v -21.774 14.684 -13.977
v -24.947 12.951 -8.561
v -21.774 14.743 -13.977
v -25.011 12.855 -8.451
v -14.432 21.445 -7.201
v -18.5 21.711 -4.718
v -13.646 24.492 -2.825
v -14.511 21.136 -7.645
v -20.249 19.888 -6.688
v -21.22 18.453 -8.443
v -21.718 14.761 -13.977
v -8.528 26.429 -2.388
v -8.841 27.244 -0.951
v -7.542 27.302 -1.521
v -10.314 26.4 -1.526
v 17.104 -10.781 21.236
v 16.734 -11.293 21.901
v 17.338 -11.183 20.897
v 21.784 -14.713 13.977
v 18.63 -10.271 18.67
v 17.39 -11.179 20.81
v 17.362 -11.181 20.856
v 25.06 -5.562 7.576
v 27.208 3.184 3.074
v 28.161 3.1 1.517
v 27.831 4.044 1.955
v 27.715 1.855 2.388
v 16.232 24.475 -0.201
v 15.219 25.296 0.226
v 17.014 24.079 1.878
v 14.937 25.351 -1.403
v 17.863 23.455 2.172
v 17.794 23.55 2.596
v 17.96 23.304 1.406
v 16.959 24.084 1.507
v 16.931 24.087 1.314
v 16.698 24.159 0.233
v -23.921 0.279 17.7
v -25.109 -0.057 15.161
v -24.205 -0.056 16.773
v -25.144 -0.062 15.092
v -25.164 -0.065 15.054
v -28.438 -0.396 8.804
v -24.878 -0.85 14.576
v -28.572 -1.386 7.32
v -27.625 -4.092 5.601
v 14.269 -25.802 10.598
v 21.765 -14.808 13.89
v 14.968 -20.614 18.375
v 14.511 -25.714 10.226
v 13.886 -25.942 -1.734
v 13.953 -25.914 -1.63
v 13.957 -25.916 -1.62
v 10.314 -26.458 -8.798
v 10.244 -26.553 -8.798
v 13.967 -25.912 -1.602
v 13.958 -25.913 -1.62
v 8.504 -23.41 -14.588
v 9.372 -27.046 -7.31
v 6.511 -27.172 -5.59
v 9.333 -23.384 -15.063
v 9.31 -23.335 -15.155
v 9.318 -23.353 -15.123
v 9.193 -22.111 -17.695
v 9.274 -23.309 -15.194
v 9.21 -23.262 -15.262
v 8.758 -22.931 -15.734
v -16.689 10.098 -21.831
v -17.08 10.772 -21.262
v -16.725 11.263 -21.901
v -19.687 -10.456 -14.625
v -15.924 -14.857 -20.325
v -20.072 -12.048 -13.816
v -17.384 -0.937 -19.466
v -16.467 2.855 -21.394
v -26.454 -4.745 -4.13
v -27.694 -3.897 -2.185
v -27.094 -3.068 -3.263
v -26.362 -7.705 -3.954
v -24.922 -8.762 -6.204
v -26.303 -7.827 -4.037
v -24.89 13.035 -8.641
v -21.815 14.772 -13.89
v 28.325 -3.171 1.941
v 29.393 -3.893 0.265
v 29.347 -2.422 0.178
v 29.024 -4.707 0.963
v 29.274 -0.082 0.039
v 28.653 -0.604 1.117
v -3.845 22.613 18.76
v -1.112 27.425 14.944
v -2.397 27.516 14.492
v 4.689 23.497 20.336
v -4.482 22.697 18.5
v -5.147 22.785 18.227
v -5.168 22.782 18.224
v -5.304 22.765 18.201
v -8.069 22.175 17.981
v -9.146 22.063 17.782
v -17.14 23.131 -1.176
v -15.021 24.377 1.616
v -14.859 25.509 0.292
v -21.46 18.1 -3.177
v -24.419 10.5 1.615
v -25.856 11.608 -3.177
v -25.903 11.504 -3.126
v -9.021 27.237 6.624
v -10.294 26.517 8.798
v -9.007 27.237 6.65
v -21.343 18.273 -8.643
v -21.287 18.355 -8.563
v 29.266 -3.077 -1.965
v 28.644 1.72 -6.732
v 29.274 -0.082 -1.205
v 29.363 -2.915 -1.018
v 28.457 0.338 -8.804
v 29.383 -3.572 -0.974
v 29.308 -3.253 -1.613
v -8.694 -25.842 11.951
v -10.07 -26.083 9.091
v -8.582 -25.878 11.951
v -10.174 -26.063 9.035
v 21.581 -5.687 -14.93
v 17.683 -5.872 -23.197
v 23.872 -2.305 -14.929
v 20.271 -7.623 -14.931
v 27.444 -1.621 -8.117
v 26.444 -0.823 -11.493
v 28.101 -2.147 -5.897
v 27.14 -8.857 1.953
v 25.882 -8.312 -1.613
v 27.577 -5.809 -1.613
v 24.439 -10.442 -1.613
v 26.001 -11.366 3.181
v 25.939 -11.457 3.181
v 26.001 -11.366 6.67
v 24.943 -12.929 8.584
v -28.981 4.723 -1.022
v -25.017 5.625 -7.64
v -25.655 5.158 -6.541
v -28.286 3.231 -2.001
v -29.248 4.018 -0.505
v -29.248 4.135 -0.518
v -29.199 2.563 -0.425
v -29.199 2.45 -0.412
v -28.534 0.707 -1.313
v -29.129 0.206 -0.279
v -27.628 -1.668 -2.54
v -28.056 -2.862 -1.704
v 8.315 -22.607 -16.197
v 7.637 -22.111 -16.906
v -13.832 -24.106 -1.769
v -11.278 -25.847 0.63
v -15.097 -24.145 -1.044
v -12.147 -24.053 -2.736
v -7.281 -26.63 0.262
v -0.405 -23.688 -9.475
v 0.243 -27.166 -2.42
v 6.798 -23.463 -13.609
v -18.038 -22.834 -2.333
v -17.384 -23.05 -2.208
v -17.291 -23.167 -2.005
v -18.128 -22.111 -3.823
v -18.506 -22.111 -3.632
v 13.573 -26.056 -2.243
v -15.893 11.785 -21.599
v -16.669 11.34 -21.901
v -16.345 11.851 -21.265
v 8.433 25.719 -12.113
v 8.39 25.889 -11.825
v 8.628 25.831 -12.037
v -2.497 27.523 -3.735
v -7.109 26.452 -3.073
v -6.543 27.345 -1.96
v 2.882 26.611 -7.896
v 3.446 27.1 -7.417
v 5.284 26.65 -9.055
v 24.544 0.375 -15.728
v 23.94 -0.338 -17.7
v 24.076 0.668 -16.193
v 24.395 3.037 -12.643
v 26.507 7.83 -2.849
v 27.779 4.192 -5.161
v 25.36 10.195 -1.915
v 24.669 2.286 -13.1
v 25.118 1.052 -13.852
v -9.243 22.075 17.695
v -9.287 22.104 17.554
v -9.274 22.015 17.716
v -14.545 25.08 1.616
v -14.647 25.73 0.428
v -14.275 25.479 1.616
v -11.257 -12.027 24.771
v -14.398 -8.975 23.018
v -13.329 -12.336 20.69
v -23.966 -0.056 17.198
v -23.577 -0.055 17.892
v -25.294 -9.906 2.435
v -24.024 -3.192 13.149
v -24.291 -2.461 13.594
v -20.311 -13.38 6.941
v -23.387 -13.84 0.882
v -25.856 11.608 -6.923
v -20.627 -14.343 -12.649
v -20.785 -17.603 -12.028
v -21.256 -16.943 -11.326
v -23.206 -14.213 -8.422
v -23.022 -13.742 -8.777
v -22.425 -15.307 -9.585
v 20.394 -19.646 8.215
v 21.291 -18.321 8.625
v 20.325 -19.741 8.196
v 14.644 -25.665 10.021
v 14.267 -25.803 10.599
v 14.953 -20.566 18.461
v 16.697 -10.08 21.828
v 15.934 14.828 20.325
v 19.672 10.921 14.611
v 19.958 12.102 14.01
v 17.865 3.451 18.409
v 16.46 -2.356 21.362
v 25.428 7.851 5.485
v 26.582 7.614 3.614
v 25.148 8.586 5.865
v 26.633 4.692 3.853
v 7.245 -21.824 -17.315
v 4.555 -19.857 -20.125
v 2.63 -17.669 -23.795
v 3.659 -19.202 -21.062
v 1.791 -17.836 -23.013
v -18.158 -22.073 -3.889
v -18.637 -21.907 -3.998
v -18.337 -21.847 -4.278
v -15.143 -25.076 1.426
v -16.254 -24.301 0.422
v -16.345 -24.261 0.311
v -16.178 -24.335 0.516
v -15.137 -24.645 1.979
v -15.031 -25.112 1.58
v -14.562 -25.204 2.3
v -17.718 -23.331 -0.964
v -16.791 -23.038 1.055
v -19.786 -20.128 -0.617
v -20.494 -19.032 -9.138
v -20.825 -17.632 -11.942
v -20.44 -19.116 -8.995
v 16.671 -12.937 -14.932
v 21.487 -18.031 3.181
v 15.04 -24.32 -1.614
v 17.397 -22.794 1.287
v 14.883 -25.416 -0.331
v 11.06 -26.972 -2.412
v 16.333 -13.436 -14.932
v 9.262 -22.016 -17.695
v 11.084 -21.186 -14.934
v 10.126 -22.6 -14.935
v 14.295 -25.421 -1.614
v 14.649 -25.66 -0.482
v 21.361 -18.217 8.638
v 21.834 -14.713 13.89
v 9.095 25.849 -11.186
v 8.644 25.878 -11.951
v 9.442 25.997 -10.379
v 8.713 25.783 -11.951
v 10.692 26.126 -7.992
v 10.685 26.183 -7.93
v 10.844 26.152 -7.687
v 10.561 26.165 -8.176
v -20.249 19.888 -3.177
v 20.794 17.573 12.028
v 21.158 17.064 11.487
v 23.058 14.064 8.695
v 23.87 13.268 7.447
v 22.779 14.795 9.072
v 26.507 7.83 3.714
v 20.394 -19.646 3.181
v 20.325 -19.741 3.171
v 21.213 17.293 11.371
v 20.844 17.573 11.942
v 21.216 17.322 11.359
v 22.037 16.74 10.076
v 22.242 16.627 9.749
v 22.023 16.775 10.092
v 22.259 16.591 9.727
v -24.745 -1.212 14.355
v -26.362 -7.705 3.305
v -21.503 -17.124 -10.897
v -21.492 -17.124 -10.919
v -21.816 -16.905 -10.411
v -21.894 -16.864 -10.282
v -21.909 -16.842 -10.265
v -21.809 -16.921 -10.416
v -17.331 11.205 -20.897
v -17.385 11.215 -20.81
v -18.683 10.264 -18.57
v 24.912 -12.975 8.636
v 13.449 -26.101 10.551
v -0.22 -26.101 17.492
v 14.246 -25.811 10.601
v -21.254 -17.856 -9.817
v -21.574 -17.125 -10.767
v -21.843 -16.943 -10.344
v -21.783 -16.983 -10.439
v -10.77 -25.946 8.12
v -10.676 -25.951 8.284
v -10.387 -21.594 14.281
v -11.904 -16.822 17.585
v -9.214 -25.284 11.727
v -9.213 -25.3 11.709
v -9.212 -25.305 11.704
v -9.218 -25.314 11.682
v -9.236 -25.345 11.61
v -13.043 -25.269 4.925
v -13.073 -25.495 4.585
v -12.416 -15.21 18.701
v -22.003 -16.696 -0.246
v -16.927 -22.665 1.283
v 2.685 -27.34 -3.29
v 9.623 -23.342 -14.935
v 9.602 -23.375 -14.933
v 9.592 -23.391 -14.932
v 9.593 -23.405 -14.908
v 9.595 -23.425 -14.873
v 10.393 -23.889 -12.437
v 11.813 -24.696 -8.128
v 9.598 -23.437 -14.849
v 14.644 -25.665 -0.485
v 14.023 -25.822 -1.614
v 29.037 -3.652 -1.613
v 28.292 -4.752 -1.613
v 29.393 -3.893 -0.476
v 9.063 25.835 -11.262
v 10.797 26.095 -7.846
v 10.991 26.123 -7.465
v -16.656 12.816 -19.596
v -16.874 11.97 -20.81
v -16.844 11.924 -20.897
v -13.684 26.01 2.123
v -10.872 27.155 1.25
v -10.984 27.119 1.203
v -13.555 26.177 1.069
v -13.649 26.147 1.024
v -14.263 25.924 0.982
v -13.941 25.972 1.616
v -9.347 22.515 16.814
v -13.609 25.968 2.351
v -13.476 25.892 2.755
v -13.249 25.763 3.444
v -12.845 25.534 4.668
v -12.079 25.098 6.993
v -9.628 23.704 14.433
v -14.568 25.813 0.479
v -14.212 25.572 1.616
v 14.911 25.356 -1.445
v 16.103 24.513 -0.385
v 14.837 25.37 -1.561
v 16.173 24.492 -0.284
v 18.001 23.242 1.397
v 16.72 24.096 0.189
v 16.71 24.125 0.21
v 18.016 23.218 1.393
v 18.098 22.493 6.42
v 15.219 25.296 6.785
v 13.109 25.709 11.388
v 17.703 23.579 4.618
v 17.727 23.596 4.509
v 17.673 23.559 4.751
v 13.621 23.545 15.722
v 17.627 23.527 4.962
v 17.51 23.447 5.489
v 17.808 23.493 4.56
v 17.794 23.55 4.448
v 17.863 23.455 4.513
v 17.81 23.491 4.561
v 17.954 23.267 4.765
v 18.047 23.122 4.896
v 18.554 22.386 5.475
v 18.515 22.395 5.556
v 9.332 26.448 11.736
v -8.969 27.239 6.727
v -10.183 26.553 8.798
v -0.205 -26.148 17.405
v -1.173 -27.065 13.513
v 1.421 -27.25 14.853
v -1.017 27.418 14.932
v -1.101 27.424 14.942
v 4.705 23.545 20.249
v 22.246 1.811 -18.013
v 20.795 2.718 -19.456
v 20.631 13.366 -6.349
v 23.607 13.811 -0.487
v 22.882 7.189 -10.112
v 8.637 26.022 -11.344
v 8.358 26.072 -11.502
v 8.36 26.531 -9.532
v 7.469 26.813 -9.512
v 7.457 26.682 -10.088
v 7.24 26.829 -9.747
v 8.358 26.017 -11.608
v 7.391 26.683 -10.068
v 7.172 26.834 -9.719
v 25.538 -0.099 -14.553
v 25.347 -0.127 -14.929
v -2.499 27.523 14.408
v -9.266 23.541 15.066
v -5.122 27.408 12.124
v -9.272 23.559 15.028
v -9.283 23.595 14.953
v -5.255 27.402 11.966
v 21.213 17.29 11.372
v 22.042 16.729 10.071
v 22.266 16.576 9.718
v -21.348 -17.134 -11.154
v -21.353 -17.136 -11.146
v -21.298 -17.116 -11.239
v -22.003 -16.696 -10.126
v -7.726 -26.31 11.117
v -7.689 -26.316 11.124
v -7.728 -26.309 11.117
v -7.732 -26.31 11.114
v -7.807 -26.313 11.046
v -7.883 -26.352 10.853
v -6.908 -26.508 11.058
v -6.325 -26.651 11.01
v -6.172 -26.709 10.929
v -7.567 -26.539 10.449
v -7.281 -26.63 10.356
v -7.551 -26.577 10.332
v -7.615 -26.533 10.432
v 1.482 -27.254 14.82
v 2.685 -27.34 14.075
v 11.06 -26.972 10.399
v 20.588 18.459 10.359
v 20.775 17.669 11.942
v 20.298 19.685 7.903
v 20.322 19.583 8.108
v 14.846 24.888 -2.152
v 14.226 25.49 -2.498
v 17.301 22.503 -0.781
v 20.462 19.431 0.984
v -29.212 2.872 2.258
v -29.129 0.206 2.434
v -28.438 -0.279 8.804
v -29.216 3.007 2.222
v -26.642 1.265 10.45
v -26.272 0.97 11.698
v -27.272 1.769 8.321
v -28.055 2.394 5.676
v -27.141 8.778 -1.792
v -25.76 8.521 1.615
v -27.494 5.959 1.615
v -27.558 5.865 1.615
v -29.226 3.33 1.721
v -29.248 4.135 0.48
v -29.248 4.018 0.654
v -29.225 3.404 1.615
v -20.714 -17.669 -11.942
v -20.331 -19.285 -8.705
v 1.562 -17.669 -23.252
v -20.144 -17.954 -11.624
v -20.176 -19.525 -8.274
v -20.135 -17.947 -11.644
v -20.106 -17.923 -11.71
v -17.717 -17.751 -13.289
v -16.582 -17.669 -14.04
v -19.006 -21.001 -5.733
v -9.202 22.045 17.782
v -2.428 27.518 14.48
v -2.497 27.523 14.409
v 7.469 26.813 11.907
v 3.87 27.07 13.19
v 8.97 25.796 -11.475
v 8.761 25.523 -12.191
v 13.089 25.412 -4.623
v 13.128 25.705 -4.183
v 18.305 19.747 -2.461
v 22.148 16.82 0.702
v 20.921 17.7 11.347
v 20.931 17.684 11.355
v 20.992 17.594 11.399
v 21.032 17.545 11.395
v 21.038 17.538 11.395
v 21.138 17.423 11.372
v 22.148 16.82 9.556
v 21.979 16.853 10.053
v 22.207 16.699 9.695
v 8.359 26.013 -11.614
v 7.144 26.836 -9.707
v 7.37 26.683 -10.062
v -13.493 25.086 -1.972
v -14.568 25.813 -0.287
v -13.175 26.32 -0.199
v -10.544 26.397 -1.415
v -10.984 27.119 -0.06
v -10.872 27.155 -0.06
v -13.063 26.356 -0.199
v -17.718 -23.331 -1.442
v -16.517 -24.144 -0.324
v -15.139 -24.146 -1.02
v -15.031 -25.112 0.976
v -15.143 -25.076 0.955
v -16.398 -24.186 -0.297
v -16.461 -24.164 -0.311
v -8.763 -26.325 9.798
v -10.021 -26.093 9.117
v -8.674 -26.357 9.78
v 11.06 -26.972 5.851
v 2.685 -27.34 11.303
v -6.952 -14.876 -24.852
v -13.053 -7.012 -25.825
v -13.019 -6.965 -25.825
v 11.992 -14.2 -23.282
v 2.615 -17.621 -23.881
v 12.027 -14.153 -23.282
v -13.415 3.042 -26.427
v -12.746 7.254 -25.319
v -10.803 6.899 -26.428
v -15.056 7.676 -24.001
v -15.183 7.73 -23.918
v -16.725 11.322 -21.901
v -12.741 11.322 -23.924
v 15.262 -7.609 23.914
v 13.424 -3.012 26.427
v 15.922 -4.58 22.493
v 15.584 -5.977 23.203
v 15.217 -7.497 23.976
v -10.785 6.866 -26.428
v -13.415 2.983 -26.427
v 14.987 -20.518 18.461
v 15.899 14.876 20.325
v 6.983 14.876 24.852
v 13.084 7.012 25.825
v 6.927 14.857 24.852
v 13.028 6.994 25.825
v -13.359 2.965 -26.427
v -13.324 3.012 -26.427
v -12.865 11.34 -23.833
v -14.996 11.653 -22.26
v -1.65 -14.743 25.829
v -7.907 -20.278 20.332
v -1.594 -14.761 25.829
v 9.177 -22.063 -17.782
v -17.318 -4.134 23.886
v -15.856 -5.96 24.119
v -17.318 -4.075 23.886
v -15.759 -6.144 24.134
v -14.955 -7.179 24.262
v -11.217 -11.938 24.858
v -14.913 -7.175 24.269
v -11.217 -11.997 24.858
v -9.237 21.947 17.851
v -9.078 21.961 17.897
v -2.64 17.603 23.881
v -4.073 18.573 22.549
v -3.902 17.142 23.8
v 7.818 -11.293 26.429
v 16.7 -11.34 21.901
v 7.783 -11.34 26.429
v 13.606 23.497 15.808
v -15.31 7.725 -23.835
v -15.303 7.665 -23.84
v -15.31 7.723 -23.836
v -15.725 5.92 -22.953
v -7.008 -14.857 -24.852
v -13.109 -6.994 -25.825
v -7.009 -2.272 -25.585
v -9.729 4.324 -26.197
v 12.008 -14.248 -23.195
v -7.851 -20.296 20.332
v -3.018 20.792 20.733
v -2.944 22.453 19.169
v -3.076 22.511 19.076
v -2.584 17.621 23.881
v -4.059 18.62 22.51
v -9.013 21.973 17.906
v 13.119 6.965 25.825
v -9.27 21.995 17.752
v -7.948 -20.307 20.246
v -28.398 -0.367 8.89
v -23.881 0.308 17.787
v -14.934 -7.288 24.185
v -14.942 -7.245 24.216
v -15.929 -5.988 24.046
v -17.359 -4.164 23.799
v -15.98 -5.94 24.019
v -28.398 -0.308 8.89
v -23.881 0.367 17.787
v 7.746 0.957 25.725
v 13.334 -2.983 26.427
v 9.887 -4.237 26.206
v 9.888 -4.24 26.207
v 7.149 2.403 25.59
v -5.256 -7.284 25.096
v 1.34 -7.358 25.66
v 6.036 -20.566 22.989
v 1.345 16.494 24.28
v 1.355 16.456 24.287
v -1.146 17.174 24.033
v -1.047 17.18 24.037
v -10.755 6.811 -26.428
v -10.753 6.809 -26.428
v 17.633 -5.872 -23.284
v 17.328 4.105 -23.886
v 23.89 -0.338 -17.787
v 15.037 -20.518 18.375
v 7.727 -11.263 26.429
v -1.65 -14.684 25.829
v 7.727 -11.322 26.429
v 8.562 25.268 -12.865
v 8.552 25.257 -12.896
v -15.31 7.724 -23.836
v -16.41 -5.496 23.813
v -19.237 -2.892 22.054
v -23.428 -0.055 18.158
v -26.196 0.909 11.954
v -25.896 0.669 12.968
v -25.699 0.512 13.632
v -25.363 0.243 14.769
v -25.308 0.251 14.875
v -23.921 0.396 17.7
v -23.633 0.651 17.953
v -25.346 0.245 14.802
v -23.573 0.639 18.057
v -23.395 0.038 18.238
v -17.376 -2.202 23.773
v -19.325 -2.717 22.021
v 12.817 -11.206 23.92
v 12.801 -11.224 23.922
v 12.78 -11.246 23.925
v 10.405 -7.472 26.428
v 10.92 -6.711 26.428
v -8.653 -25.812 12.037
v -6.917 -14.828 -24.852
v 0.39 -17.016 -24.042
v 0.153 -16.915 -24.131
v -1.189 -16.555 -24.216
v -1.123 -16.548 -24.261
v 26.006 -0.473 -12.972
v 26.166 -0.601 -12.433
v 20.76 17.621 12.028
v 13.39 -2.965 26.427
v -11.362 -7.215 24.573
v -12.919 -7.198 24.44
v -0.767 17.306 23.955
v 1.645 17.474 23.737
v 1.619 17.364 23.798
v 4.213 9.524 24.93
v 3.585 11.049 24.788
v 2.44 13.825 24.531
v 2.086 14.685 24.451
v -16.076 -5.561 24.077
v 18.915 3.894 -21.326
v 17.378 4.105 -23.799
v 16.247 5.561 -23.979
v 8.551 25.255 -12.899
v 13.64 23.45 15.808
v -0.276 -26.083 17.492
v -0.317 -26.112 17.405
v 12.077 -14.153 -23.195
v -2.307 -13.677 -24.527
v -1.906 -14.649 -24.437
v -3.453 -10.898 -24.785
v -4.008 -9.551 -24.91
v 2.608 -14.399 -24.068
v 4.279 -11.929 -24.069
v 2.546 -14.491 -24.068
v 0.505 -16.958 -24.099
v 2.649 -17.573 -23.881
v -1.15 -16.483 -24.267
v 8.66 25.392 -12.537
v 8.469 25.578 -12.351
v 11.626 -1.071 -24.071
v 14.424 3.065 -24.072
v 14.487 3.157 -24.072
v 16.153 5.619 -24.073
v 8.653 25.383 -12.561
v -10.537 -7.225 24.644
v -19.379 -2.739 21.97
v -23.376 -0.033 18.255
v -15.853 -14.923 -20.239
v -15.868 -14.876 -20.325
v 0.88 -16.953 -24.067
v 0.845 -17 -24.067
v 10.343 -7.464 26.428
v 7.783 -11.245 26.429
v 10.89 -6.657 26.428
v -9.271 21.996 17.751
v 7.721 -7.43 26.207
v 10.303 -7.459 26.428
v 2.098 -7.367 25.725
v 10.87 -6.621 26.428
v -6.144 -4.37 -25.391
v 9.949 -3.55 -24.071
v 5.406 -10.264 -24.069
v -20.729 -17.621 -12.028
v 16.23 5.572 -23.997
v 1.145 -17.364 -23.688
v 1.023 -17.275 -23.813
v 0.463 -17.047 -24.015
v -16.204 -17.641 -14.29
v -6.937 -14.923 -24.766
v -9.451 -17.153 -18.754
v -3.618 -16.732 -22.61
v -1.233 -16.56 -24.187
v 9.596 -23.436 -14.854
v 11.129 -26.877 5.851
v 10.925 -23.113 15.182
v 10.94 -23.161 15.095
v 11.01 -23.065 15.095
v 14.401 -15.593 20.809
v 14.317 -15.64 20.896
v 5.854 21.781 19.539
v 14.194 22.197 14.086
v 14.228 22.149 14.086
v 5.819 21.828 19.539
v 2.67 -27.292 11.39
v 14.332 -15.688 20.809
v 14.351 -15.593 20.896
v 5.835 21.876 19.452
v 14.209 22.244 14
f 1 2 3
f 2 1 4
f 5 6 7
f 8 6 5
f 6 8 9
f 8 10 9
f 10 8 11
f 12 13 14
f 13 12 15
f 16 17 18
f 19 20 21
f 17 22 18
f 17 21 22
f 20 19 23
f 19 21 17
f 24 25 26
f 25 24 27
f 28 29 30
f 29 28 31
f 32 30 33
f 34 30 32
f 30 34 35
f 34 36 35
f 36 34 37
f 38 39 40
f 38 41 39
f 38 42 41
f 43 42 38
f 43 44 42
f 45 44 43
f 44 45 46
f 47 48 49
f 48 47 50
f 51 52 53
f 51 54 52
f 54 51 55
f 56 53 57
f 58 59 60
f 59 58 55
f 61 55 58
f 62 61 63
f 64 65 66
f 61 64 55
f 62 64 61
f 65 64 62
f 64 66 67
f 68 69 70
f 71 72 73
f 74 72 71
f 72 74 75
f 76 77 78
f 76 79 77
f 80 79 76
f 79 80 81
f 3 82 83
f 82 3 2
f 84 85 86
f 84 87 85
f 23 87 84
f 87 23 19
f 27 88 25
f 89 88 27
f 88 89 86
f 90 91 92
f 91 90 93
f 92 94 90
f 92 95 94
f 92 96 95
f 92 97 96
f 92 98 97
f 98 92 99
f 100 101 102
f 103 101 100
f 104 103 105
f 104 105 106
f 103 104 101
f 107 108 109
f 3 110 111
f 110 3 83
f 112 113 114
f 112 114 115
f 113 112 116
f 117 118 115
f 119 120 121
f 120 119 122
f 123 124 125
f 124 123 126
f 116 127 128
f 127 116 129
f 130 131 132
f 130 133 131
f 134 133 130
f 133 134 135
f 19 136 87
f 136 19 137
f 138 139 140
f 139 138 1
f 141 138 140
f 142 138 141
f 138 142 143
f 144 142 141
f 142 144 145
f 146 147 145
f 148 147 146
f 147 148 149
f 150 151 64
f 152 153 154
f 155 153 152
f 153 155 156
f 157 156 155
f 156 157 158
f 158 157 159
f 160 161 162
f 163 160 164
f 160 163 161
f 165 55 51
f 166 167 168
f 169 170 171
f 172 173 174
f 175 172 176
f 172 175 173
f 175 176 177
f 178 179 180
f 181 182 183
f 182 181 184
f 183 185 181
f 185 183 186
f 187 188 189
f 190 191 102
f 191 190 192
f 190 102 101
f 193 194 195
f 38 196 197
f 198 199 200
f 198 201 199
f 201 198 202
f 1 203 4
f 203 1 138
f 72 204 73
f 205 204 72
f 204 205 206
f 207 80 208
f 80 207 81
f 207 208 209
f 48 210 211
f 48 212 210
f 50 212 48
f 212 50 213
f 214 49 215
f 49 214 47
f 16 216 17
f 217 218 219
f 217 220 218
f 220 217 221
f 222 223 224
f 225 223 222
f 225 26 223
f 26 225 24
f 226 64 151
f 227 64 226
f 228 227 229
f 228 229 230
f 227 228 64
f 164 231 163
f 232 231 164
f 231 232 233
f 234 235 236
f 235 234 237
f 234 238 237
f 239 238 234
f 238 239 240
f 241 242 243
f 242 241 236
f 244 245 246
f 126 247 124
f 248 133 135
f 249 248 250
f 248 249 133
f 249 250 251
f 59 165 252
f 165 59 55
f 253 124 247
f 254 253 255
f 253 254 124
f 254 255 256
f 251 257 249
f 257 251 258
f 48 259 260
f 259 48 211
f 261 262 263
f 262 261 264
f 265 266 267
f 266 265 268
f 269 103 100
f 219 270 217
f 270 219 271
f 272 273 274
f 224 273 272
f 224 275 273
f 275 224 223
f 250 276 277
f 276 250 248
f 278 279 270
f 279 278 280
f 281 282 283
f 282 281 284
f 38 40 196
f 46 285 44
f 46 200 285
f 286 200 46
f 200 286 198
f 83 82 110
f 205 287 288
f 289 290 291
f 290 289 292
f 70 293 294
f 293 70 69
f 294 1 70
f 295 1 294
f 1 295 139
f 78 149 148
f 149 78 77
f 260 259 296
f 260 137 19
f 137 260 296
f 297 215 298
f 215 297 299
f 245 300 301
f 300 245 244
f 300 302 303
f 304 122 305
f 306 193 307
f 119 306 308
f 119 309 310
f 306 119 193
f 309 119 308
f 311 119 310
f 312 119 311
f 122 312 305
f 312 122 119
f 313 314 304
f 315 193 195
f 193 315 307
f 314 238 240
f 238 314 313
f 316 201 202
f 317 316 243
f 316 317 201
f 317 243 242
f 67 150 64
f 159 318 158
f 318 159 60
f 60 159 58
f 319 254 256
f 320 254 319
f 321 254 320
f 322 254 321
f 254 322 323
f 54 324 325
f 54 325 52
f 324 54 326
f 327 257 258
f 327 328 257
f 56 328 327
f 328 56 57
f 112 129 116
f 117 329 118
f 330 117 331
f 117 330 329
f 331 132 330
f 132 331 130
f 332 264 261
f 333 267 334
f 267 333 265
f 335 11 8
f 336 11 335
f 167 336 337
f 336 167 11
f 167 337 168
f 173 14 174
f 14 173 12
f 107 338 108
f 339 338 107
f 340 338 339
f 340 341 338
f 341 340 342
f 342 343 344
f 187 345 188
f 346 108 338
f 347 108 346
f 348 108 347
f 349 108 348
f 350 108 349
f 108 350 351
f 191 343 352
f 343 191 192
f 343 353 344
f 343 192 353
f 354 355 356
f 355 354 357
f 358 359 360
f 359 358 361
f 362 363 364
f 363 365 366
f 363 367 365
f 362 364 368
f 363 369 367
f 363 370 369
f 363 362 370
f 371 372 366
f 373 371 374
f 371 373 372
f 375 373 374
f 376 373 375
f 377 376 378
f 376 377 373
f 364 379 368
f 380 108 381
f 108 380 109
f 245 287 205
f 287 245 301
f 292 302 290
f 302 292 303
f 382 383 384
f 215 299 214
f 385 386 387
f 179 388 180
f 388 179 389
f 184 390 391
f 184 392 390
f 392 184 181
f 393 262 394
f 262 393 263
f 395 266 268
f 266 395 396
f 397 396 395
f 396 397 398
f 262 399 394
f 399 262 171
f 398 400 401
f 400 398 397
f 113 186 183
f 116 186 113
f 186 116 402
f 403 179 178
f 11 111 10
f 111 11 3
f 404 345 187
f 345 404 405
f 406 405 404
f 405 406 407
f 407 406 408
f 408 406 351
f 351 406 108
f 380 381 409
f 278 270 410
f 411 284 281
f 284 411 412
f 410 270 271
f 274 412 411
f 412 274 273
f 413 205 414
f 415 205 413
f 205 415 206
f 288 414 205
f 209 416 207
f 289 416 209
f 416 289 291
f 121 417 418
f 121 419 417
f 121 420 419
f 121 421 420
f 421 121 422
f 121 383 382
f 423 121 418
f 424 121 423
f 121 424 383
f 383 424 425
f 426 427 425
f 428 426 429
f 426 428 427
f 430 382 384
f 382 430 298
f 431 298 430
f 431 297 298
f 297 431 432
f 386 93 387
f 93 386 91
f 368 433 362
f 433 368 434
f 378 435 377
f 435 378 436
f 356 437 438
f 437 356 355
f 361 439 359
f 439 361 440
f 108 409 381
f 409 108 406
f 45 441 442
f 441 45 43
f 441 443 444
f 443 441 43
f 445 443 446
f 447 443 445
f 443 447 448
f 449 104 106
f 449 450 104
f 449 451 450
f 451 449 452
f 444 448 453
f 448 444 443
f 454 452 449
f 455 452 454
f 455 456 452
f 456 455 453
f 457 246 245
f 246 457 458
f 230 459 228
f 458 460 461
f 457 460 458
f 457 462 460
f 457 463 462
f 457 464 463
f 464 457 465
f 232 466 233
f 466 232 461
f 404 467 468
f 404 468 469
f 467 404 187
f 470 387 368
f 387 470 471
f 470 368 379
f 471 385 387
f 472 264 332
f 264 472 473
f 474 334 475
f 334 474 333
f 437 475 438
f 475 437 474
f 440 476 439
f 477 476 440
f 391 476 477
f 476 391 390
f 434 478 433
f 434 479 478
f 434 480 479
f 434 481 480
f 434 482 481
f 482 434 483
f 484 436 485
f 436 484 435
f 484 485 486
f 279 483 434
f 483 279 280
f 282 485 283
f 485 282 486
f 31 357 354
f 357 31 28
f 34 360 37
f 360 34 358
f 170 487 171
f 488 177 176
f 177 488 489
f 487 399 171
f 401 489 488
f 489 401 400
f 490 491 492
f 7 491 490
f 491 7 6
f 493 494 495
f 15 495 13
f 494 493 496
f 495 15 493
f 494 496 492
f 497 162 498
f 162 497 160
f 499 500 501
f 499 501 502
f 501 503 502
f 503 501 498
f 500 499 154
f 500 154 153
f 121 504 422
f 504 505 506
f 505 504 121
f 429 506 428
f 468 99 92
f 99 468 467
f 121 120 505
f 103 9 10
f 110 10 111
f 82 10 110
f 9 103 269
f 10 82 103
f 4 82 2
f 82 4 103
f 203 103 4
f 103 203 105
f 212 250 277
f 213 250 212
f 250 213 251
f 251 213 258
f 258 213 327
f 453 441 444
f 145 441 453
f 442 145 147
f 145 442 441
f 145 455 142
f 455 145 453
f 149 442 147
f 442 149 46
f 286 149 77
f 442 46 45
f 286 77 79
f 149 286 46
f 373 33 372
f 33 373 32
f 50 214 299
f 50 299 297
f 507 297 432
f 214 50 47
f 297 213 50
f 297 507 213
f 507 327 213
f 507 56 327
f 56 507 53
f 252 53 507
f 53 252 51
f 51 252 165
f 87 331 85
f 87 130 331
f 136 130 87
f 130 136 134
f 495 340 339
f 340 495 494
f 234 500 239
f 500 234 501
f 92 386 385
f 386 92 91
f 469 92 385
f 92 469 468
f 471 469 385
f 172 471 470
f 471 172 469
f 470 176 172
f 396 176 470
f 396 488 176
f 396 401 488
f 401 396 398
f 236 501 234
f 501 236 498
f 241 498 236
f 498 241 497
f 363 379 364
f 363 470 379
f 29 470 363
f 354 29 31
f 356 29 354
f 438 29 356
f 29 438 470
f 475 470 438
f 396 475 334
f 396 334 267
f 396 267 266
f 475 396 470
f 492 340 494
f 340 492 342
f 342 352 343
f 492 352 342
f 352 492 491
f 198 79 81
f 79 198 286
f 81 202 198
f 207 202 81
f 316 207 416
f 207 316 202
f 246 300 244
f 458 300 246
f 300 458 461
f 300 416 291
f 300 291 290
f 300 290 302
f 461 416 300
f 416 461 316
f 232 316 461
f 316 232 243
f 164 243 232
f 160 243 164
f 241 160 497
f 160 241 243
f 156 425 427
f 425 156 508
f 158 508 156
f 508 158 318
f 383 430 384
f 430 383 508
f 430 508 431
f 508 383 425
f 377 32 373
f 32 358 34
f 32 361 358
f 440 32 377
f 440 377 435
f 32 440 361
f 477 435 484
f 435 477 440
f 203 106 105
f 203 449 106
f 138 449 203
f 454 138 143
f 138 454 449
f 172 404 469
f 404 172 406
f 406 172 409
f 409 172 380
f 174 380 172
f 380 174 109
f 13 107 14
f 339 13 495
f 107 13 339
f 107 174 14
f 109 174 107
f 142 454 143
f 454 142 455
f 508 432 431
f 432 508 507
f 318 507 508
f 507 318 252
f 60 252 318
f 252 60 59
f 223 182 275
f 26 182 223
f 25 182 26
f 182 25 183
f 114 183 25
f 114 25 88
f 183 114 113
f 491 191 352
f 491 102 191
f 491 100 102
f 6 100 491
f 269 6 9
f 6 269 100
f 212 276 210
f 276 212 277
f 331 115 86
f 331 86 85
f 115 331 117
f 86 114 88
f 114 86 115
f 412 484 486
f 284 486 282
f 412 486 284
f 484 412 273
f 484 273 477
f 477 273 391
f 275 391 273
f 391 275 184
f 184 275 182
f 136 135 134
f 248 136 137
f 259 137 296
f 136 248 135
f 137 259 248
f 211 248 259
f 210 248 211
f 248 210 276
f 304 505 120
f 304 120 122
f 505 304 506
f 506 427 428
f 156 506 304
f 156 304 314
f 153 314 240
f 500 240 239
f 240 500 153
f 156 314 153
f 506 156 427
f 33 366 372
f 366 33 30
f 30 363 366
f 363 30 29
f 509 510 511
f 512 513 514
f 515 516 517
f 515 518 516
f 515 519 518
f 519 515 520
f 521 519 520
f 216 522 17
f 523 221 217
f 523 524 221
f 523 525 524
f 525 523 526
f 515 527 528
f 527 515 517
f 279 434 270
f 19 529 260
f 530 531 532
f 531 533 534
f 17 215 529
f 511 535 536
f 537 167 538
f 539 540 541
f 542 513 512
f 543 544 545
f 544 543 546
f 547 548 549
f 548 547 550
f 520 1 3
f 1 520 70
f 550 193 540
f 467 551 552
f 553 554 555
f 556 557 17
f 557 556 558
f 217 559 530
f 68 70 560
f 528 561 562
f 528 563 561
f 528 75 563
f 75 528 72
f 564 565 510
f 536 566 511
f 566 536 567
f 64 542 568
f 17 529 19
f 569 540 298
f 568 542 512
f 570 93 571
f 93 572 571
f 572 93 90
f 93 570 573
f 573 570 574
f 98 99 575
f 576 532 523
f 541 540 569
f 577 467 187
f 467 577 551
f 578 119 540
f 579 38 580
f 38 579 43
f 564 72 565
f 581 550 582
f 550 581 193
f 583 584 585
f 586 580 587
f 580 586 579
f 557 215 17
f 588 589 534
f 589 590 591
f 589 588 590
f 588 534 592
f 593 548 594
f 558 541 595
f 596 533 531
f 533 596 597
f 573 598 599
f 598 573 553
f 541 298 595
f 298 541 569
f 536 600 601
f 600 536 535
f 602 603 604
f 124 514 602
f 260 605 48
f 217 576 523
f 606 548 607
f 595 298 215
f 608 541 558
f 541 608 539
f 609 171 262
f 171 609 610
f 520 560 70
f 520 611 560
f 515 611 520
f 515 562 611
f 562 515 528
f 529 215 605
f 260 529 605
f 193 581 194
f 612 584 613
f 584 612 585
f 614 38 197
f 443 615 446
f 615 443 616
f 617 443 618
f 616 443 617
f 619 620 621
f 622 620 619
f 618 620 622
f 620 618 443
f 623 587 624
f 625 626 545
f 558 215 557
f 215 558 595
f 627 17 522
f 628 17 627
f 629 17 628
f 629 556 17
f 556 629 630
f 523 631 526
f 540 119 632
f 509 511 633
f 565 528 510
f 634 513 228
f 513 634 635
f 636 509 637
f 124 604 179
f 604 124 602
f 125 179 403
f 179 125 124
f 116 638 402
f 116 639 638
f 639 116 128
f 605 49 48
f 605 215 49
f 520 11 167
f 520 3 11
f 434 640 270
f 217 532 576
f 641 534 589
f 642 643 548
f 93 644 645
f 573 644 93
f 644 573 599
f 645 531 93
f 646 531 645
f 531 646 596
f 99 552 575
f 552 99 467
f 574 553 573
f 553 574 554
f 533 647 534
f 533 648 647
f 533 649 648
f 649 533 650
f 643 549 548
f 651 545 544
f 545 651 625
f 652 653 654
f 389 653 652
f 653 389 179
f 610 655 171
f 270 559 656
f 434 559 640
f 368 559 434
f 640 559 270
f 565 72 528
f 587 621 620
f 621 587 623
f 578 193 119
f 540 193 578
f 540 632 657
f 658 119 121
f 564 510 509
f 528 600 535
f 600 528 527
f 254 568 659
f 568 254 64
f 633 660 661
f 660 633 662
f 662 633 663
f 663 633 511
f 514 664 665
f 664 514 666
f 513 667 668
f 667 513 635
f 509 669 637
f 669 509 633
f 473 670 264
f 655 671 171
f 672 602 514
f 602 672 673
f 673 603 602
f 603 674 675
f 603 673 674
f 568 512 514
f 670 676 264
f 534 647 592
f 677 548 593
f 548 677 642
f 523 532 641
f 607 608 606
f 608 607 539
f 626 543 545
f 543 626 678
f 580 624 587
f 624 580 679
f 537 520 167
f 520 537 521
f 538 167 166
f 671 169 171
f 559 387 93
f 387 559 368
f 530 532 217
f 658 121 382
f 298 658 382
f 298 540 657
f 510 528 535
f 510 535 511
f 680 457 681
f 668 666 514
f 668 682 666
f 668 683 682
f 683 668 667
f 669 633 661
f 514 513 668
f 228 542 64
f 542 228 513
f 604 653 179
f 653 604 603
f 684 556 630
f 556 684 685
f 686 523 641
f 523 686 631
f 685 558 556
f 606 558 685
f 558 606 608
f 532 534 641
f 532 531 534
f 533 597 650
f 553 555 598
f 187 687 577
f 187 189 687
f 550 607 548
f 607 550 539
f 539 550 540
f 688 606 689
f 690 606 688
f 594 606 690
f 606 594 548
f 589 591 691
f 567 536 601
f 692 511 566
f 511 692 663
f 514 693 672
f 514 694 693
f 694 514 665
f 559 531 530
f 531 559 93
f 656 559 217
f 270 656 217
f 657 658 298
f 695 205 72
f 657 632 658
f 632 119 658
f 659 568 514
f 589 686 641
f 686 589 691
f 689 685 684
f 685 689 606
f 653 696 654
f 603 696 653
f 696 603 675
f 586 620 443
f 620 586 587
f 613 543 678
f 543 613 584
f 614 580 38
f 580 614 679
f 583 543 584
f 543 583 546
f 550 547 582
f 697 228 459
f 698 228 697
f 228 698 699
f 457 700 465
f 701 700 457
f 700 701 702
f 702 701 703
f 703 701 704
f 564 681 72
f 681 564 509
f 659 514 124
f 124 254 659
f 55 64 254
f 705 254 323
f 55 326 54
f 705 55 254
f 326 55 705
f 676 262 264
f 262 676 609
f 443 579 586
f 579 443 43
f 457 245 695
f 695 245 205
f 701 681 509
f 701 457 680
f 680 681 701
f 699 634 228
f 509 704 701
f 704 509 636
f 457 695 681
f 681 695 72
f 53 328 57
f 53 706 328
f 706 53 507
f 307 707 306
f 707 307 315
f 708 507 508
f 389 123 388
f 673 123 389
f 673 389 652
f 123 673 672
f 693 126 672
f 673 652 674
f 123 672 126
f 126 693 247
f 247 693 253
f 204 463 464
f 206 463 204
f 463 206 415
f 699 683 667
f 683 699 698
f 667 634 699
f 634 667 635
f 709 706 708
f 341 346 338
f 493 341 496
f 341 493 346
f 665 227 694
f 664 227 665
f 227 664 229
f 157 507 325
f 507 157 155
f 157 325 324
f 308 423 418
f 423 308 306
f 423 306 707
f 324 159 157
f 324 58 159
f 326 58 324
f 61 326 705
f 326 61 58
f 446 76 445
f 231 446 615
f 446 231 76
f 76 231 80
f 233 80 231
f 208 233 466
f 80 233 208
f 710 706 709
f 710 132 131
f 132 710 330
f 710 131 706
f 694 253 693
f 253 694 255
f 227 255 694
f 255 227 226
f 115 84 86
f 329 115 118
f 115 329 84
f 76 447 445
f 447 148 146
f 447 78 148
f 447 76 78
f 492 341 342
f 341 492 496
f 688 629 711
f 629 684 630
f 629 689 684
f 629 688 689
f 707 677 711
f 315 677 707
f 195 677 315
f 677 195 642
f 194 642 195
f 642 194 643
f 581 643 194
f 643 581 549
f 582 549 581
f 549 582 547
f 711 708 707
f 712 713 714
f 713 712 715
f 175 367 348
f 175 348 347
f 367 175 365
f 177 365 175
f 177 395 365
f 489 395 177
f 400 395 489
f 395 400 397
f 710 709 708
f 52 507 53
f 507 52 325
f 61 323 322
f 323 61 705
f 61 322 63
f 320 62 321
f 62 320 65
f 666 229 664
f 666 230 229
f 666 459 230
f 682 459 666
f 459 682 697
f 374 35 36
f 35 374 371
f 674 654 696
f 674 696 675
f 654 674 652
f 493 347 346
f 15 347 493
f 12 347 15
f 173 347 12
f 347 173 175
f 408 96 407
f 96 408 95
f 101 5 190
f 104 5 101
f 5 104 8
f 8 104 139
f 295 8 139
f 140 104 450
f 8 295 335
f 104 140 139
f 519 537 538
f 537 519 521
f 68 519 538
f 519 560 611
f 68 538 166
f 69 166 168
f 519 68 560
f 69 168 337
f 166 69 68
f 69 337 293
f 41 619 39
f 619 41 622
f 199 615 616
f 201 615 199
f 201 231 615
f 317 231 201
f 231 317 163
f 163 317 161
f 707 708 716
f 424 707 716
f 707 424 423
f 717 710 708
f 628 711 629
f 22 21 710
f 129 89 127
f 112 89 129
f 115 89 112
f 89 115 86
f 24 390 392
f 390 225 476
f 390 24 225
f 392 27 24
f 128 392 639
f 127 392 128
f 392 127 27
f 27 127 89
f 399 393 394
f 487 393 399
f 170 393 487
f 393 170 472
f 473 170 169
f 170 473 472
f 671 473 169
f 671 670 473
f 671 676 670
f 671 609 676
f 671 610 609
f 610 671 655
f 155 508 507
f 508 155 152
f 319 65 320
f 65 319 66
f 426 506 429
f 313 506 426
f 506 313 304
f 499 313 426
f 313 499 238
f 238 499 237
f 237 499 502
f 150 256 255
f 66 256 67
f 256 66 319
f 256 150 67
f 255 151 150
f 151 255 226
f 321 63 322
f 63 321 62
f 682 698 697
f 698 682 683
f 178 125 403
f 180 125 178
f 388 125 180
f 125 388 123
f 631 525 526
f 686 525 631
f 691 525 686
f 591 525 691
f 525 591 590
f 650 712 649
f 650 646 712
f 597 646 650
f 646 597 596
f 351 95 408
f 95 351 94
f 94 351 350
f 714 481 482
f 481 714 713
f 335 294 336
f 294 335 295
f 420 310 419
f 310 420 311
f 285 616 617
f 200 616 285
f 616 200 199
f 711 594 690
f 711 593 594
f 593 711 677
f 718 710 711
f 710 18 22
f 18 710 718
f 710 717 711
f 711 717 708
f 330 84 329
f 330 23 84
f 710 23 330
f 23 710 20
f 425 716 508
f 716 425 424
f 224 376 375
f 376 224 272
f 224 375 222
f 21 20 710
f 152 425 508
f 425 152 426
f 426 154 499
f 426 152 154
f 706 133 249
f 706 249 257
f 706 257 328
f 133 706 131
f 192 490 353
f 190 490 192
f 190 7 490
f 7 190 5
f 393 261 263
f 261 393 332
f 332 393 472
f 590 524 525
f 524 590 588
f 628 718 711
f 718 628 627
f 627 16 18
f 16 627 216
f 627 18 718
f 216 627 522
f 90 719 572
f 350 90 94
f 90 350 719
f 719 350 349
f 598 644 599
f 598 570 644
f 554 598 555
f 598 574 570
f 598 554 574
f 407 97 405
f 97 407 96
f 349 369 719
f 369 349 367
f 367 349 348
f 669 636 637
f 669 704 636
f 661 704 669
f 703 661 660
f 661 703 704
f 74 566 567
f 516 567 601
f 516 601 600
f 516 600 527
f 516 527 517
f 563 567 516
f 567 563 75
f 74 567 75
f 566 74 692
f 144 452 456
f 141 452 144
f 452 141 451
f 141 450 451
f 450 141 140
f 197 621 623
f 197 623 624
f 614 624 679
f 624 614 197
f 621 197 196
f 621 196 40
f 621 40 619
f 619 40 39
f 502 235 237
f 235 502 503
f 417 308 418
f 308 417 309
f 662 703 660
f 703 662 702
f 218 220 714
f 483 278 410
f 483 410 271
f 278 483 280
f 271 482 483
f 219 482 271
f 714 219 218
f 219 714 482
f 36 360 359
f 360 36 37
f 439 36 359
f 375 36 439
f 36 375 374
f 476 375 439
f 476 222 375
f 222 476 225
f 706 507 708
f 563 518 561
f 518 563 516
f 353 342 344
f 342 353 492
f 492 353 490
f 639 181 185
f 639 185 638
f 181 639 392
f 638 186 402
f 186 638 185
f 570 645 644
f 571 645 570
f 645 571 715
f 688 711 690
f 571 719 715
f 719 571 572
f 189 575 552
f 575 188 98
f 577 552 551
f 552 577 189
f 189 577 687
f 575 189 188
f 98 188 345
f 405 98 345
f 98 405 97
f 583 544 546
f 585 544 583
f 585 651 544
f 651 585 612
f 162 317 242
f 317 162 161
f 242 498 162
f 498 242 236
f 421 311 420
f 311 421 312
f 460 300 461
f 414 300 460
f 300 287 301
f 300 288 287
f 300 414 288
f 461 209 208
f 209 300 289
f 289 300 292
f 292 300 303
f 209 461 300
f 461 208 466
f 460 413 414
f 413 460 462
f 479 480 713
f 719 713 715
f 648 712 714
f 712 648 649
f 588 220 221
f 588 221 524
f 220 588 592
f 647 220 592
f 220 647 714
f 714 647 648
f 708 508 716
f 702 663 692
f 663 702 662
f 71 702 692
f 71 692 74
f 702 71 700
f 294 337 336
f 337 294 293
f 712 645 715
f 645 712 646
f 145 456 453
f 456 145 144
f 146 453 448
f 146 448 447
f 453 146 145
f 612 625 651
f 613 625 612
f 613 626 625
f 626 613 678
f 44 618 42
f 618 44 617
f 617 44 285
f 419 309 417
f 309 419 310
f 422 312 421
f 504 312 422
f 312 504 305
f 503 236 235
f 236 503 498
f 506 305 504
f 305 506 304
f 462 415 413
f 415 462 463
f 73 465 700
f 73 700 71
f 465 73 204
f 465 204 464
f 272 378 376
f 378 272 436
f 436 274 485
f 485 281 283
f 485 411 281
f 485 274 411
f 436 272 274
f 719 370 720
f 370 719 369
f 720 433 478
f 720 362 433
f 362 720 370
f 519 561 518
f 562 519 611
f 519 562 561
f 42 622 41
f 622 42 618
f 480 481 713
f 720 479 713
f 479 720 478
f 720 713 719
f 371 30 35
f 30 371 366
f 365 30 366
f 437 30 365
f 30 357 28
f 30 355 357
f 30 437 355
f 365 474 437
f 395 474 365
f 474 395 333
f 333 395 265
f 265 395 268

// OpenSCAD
// Auto-generated OpenSCAD file

    inner_points = 10*[[-1.4487143990499982, 2.5753825704945696, 0.3393075595010162], [1.102866452168368, -2.6876538321967396, 0.585057055716785], [-1.090261602560301, 2.7060028247507986, -0.585057055716785], [1.4613192486580653, -2.5570335779405107, -0.3393075595010162], [-2.628060976189026, -0.7646488526687646, -1.130908640848898], [-2.192198931774896, -1.6636828006652273, -1.0889296152643466], [2.2048037813829633, 1.6820317932192868, 1.0889296152643466], [2.640665825797093, 0.782997845222824, 1.130908640848898], [-1.4556831147710878, -0.5821291224034855, 2.5160655338088227], [0.6427361059669467, 0.18253516486993837, -2.8952591776693413], [-0.6301312563588797, -0.16418617231587906, 2.8952591776693413], [1.4682879643791549, 0.6004781149575449, -2.5160655338088227], [-2.0167959533705173, 1.9829203214969908, 0.9105096525937446], [0.26540733999390004, -2.724482544292499, 1.1303146841836589], [-1.078354348798041, 2.3248885867589517, -1.5095083280441774], [1.2038489445663763, -2.3825142790305383, -1.2897032964542632], [-1.1912440949583092, 2.4008632715845972, 1.2897032964542632], [1.090959198406108, -2.3065395942048927, 1.5095083280441774], [-0.25280249038583286, 2.742831536846558, -1.1303146841836589], [2.0294008029785844, -1.9645713289429314, -0.9105096525937446], [-2.904797621580721, 0.026526236908532792, -0.5855107982333385], [-1.7636959748985122, -2.327175195986212, -0.47560828243838127], [-2.5463448250910243, 0.15714649116476193, -1.5098754134511396], [-1.4052431784088153, -2.1965549417299832, -1.3999728976561825], [1.4178480280168824, 2.214903934284042, 1.3999728976561825], [2.5589496746990914, -0.13879749861070262, 1.5098754134511396], [1.7763008245065792, 2.345524188540271, 0.47560828243838127], [2.917402471188788, -0.008177244354473472, 0.5855107982333385], [-2.230731614374909, -0.43037121933057704, 1.902657543873266], [-1.7948695699607788, -1.3294051673270397, 1.9446365694578178], [-0.353848405229956, 0.2535653111933443, -2.937378417402578], [0.08201363918417413, -0.6454686368031184, -2.8953993918180263], [-0.06940878957610698, 0.6638176293571778, 2.8953993918180263], [0.36645325483802316, -0.23521631863928497, 2.937378417402578], [1.807474419568846, 1.3477541598810991, -1.9446365694578178], [2.2433364639829763, 0.44872021188463634, -1.902657543873266], [-2.5775184201532904, 1.1549165198239344, 0.910369438445059], [-0.7311771712030029, -2.653452397969093, 1.088195444450422], [-1.4175408039877317, 1.5776125418353975, -2.0809372923951823], [0.4288004449625556, -2.23075637595763, -1.9031112863898194], [-0.4161955953544884, 2.249105368511689, 1.9031112863898194], [1.4301456535957988, -1.559263549281338, 2.0809372923951823], [0.7437820208110699, 2.671801390523152, -1.088195444450422], [2.5901232697613574, -1.136567527269875, -0.910369438445059], [-2.916704875342981, 0.4076404749003801, 0.33894047409405403], [-1.506225670806824, -2.5016944948961846, 0.4747874545148656], [-1.9782632707705046, 0.7496087401623407, -2.081077506543868], [-0.5677840662343473, -2.159726229634224, -1.9452305261230565], [0.5803889158424144, 2.178075222188283, 1.9452305261230565], [1.9908681203785716, -0.7312597476082813, 2.081077506543868], [1.518830520414891, 2.5200434874502435, -0.4747874545148656], [2.929309724951048, -0.38929148234632077, -0.33894047409405403], [-2.659234571251292, 0.23312117599040766, 1.289336211047301], [-1.5181329245690836, -2.1205802569043377, 1.3992387268422581], [-1.140804158596037, 0.7864374522581001, -2.6263351350107422], [0.0002974880861718451, -1.5672639806366448, -2.516432619215785], [0.012307361521895308, 1.5856129731907043, 2.516432619215785], [1.153409008204104, -0.7680884597040407, 2.6263351350107422], [1.5307377741771506, 2.1389292494583967, -1.3992387268422581], [2.671839420859359, -0.21477218343634835, -1.289336211047301], [-2.2241986003144585, 0.5422344662013506, 2.1350268624122144], [-0.28608434351159595, 1.2484835999237276, -2.8629094259414605], [-0.8884276339278647, 1.218480364801499, 2.748575066496456], [1.0496866228749977, 1.9247294985238759, -2.2493612218572188], [-2.1424824492164563, 1.4640298100348774, 1.7560600898099725], [-0.5628209889032914, 2.039658689501025, -2.317511583325901], [-1.3169305908042483, 1.8819727601224838, 2.135253733670491], [0.26273086950891694, 2.4576016395886318, -1.9383179394653824], [-1.4491501007106375, 0.39047656312844187, 2.7484348523477706], [0.7105001676853069, 1.1774534536003218, -2.820790186208224]];

    outer_points = 10*[[1.306878914065968, 0.6964890807624852, 2.5738294275574076], [-1.3374470976514352, 0.3012289421252946, -2.6340318607074473], [1.3374470976514352, -0.3012289421252946, 2.6340318607074473], [-1.306878914065968, -0.6964890807624852, -2.5738294275574076], [2.8357387496386, 0.03375924615901473, -0.8803825957553844], [2.3840339404359963, -0.03375924615901473, -1.76999150900791], [-2.3840339404359963, 0.03375924615901473, 1.76999150900791], [-2.8357387496386, -0.03375924615901473, 0.8803825957553844], [0.3563471799807295, 2.92037151977505, -0.40258456455588854], [0.5352964436130941, -2.92037151977505, -0.05015338227922686], [-0.5352964436130941, 2.92037151977505, 0.05015338227922686], [-0.3563471799807295, -2.92037151977505, 0.40258456455588854], [1.5883860833705659, 1.4827955553120262, 2.0238513900762873], [-0.7767710033778418, 1.1292641397965266, -2.6342013531036494], [1.6684146269716655, -1.1292641397965266, 2.1814634062685343], [-0.6967424597767421, -1.4827955553120262, -2.4765893369114025], [0.6967424597767421, 1.4827955553120262, 2.4765893369114025], [-1.6684146269716655, 1.1292641397965266, -2.1814634062685343], [0.7767710033778418, -1.1292641397965266, 2.6342013531036494], [-1.5883860833705659, -1.4827955553120262, -2.0238513900762873], [2.9103584923151162, 0.5872418653227648, -0.05087136359121058], [1.7277799489409125, 0.410476157565015, -2.3798977351811788], [2.9409266759005837, -0.410476157565015, 0.00933106955882912], [1.75834813252638, -0.5872418653227648, -2.319695302031139], [-1.75834813252638, 0.5872418653227648, 2.319695302031139], [-2.9409266759005837, 0.410476157565015, -0.00933106955882912], [-1.7277799489409125, -0.410476157565015, 2.3798977351811788], [-2.9103584923151162, -0.5872418653227648, 0.05087136359121058], [1.3130005172105763, 2.6458189412675677, -0.30544922597157165], [0.8612957080079724, 2.578300448949538, -1.195058139224097], [1.4730576044127757, -2.578300448949538, 0.009774806412922166], [1.0213527952101717, -2.6458189412675677, -0.8798341068396033], [-1.0213527952101717, 2.6458189412675677, 0.8798341068396033], [-1.4730576044127757, 2.578300448949538, -0.009774806412922166], [-0.8612957080079724, -2.578300448949538, 1.195058139224097], [-1.3130005172105763, -2.6458189412675677, 0.30544922597157165], [2.074442434967643, 1.7573481338195083, 1.194170665515911], [0.16099015742183997, 1.4713352106220383, -2.5742731644115002], [2.173363154998908, -1.4713352106220383, 1.3889898316003255], [0.2599108774531048, -1.7573481338195083, -2.3794539983270857], [-0.2599108774531048, 1.7573481338195083, 2.3794539983270857], [-2.173363154998908, 1.4713352106220383, -1.3889898316003255], [-0.16099015742183997, -1.4713352106220383, 2.5742731644115002], [-2.074442434967643, -1.7573481338195083, -1.194170665515911], [2.579390962994886, 1.4152770629939968, 0.40169709084770233], [1.1176434946516864, 1.196782632114556, -2.477137825827184], [2.659419506595986, -1.196782632114556, 0.5593091070399493], [1.1976720382527861, -1.4152770629939968, -2.319525809634937], [-1.1976720382527861, 1.4152770629939968, 2.319525809634937], [-2.659419506595986, 1.196782632114556, -0.5593091070399493], [-1.1176434946516864, -1.196782632114556, 2.477137825827184], [-2.579390962994886, -1.4152770629939968, -0.40169709084770233], [1.96925450870566, 2.201583537543538, 0.3044570002016973], [0.7866759653314565, 2.024817829785788, -2.024569371388271], [2.0987434123223925, -2.024817829785788, 0.5594785994361517], [0.9161648689481887, -2.201583537543538, -1.7695477721538164], [-0.9161648689481887, 2.201583537543538, 1.7695477721538164], [-2.0987434123223925, 2.024817829785788, -0.5594785994361517], [-0.7866759653314565, -2.024817829785788, 2.024569371388271], [-1.96925450870566, -2.201583537543538, -0.3044570002016973], [1.2538486107021445, 2.7892218999452805, 0.6824458309038517], [1.4191273670453497, -2.6053280752940653, 1.0079536665936386], [-0.18886107812477992, 2.7892218999452805, 1.4149912168799113], [-0.02358232178157471, -2.6053280752940653, 1.7404990525696982], [1.3590365369641275, 2.3449864962212508, 1.5721594962180654], [1.4937471097218653, -2.0518454561303154, 1.837464898757812], [0.467392913370304, 2.3449864962212508, 2.0248974430531805], [0.6021034861280418, -2.0518454561303154, 2.290202845592927], [0.29719527347229757, 3.0637744784527623, 0.5853104923195349], [0.481366206245668, -2.9473991461195768, 0.9480254779014893]];

    // Convex hull for inner set (I)
    module inner_hull() {
        hull() {
            for (p = inner_points) {
                translate(p) sphere(r=0.1);
            }
        }
    }

    // Convex hull for outer set (O) minus inner hull (O \ I)
    module outer_minus_inner() {
        difference() {
            hull() {
                for (p = outer_points) {
                    translate(p) sphere(r=0.1);
                }
            }
            inner_hull(); // Subtract inner hull
        }
    }

    // Convex hull for outer set (O) minus all translated inner hulls
    module outer_minus_AllTranslationInner() {
        difference() {
            hull() {
                for (p = outer_points) {
                    translate(p) sphere(r=0.1);
                }
            }
            hull() {
                translate([0,0,50]) inner_hull();
                translate([0,0,-50]) inner_hull();
            }; // Subtract translated inner hulls
        }
    }

    // Difference between outer_minus_inner and outer_minus_AllTranslationInner
    module outer_minus_inner_diff() {
        difference() {
            // Outer minus inner
            difference() {
                hull() {
                    for (p = outer_points) {
                        translate(p) sphere(r=0.1);
                    }
                }
                inner_hull();
            }

            // Subtract Outer minus AllTranslationInner
            difference() {
                hull() {
                    for (p = outer_points) {
                        translate(p) sphere(r=0.1);
                    }
                }
                hull() {
                    translate([0,0,50]) inner_hull();
                    translate([0,0,-50]) inner_hull();
                };
            }
        }
    }

    // Rendering all with colors applied
    color([1, 1, 0, 1]) outer_minus_inner_diff(); // Opaque yellow
    
